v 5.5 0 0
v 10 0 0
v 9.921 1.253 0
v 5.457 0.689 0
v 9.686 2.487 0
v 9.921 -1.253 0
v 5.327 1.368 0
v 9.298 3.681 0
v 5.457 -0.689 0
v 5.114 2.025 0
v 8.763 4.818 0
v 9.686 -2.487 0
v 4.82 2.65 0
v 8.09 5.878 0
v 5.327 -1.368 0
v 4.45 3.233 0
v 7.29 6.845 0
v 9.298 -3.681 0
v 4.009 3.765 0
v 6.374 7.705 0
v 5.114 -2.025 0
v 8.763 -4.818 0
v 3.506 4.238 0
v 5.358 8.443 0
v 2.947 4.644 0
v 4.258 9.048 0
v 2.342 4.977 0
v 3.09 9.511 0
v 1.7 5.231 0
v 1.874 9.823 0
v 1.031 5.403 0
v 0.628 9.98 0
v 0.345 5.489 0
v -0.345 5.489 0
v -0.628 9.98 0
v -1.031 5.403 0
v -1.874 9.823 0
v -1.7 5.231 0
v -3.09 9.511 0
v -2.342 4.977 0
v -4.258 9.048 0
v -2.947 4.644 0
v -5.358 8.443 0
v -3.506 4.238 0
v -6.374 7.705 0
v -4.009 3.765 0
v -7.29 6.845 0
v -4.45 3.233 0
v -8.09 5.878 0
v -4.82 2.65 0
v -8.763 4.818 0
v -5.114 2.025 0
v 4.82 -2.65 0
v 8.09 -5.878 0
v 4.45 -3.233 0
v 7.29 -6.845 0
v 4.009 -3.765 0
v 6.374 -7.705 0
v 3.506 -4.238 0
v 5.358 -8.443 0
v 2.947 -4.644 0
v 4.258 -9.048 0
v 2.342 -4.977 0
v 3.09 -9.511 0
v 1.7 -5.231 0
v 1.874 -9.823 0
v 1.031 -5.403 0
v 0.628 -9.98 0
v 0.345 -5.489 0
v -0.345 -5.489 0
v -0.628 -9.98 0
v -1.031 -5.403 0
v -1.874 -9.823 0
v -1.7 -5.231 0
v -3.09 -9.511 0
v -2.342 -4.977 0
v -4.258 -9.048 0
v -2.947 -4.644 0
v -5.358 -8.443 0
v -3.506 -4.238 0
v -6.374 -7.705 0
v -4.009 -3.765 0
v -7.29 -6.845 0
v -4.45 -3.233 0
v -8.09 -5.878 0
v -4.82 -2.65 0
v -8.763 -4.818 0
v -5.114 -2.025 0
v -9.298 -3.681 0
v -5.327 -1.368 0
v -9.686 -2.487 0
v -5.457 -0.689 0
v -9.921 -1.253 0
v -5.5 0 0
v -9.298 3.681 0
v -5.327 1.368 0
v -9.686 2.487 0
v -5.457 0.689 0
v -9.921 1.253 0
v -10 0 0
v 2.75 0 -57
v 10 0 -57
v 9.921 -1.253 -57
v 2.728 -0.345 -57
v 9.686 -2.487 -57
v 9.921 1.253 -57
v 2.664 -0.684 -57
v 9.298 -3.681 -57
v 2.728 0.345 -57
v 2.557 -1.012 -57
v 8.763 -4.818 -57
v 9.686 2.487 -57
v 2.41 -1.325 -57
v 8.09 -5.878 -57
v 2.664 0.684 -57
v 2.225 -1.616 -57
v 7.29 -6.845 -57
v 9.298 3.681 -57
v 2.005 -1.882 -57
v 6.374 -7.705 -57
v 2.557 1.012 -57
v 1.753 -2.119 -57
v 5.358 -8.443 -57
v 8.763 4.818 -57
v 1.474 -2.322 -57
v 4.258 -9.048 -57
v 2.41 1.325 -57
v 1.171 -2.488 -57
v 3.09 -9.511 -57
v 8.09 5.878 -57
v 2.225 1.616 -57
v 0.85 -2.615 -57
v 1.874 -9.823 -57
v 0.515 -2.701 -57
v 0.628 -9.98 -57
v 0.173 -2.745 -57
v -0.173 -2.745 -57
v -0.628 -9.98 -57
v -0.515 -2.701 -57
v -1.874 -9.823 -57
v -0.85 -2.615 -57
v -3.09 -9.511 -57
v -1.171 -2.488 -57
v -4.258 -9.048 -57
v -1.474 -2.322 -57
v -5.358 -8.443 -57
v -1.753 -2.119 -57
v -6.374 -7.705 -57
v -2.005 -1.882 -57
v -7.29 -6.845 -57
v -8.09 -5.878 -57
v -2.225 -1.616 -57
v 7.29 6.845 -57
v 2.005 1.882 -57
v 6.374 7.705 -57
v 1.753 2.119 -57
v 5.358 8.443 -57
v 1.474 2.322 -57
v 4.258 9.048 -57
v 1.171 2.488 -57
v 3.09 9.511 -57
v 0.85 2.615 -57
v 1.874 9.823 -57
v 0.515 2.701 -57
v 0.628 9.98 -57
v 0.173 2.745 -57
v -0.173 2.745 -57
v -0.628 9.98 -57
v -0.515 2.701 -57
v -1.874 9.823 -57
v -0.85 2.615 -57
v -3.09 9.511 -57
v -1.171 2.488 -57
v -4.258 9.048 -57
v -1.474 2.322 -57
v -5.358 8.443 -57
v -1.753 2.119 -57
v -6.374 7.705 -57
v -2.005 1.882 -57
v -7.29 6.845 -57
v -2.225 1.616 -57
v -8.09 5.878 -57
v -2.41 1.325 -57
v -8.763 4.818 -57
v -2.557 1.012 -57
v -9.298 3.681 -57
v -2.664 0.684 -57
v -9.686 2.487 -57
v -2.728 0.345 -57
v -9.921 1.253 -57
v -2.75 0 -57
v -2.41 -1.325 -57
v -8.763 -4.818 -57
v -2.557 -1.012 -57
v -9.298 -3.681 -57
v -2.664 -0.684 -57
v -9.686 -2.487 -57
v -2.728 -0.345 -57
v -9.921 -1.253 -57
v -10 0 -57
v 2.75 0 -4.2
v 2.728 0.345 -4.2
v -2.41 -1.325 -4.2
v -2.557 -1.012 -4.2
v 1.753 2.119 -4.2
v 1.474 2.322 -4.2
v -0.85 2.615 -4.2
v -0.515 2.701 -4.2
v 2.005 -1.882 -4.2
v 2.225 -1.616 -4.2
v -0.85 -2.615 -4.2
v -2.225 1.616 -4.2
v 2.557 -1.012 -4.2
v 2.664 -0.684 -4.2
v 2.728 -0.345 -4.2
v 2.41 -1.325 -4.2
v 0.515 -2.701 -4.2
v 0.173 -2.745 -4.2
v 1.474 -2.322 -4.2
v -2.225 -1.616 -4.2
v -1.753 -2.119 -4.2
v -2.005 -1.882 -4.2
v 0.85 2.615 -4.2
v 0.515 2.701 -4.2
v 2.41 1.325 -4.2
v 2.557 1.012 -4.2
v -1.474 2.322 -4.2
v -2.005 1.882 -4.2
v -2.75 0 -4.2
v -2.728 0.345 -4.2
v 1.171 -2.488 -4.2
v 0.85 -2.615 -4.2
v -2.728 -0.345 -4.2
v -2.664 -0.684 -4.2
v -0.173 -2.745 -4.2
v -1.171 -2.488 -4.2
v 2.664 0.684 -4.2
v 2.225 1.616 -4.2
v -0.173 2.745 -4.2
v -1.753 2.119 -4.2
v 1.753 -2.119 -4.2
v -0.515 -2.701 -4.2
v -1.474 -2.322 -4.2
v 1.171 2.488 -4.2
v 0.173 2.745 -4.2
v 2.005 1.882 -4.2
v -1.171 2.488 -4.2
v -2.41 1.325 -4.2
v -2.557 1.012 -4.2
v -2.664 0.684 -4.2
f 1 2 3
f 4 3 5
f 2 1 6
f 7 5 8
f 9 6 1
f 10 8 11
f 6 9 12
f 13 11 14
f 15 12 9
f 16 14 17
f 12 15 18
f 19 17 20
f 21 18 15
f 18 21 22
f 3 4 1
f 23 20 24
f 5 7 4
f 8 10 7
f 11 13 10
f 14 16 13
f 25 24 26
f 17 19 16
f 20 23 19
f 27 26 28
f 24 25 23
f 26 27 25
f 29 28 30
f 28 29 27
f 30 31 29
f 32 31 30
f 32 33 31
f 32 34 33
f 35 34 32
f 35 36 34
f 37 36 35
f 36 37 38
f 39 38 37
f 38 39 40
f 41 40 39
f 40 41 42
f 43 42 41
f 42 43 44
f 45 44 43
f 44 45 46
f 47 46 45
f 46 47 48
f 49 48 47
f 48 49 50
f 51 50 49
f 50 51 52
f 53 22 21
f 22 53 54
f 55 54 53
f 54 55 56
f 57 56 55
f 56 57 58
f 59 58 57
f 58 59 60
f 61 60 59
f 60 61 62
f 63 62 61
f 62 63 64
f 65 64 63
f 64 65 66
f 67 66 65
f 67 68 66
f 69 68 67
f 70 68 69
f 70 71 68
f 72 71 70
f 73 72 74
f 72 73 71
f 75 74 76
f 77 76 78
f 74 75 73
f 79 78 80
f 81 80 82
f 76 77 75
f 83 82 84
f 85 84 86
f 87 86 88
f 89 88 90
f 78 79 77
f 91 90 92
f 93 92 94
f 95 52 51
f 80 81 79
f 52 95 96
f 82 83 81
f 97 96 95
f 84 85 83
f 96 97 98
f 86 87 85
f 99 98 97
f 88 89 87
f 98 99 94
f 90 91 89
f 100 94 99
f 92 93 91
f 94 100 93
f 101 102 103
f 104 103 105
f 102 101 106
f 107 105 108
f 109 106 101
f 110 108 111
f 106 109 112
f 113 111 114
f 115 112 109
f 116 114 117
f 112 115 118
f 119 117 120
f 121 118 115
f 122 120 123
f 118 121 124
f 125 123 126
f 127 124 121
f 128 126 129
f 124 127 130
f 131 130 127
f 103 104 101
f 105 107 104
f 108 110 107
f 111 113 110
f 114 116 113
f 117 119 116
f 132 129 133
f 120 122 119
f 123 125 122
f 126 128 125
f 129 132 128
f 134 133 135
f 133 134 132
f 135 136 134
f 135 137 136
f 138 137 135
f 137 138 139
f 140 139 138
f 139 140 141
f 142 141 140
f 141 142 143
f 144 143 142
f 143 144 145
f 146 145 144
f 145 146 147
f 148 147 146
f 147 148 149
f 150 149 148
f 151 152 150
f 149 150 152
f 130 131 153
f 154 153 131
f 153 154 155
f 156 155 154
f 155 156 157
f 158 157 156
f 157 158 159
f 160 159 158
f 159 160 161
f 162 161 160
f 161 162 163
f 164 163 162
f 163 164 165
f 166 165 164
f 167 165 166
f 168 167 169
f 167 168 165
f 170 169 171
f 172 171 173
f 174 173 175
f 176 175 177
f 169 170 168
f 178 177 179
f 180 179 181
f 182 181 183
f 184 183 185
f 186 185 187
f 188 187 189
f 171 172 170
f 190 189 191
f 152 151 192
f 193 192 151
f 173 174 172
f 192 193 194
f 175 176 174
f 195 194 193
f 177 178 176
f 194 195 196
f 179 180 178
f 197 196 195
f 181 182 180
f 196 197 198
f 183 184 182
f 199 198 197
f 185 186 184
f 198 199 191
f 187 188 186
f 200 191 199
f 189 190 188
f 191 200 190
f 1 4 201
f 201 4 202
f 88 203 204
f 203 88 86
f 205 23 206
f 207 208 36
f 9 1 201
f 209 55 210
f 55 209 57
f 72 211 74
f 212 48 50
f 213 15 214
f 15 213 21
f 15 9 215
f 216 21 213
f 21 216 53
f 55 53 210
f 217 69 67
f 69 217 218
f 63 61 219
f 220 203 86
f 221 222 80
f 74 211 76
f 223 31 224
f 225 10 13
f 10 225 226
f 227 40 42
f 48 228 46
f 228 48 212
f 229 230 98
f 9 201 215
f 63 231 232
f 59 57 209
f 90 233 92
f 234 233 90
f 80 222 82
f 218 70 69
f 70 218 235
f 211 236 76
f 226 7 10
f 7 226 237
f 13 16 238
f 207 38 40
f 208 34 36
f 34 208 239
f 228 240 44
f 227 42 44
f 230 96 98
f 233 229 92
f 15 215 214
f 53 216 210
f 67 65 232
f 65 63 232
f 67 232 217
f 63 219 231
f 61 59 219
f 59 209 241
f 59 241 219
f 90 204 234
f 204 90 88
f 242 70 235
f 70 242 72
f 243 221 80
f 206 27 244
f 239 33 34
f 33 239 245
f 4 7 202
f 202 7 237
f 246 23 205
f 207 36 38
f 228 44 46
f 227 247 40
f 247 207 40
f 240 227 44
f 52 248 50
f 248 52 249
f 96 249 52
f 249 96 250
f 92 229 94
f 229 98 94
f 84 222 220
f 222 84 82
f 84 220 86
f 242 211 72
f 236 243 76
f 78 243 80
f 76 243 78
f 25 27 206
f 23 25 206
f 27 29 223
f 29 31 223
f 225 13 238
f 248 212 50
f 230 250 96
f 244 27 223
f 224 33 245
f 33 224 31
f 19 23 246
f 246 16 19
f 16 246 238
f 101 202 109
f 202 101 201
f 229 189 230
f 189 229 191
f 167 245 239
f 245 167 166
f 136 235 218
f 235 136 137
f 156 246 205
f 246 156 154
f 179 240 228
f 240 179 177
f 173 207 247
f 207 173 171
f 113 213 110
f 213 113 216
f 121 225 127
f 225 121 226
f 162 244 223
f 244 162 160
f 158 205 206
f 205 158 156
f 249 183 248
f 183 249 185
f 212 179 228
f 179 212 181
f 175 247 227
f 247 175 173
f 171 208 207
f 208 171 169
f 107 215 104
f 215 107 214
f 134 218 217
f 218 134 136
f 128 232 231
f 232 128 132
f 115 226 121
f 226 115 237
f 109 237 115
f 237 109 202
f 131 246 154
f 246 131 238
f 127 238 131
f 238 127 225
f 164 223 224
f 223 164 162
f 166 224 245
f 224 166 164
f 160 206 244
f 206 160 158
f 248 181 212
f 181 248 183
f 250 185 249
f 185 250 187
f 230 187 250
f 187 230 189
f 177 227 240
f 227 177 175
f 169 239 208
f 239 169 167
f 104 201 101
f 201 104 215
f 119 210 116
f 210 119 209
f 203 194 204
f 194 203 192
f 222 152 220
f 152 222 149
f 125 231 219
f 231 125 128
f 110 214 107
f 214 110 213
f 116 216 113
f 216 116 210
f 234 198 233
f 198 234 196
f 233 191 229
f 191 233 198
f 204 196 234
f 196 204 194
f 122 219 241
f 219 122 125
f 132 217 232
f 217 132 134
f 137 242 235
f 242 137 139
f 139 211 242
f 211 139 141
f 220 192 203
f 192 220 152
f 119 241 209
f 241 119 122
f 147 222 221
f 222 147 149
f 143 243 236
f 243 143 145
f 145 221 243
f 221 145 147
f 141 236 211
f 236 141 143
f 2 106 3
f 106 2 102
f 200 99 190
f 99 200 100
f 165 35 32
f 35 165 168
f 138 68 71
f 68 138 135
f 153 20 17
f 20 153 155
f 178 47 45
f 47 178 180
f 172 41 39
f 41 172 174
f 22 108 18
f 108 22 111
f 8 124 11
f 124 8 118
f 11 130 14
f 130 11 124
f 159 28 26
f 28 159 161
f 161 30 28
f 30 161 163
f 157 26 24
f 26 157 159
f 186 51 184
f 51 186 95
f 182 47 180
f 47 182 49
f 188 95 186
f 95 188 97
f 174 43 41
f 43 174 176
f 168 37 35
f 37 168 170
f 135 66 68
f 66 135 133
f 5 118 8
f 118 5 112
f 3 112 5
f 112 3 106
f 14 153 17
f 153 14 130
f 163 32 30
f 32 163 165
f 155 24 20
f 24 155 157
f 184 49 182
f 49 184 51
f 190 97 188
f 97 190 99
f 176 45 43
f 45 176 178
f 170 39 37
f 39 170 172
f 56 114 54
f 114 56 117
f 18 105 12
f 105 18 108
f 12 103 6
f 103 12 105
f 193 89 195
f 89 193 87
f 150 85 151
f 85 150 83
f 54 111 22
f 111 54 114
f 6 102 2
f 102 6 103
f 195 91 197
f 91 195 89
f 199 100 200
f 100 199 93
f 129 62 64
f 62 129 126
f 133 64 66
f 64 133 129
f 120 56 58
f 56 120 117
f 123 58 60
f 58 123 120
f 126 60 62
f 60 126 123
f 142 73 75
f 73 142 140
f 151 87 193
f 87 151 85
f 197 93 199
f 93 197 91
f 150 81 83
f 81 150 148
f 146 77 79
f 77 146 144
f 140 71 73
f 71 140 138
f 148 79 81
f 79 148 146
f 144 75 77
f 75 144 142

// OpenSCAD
$fn = 50;


difference() {
	union() {
		translate(v = [0, 0, -57.0000000000]) {
			cylinder(h = 57, r = 10.0000000000);
		}
		cylinder(h = 0, r = 20.0000000000);
	}
	union() {
		translate(v = [0, 0, 0]) {
			rotate(a = [0, 0, 0]) {
				difference() {
					union() {
						#translate(v = [0, 0, -57.0000000000]) {
							cylinder(h = 57, r = 2.2500000000);
						}
						#translate(v = [0, 0, -4.2000000000]) {
							cylinder(h = 4.2000000000, r = 10.0000000000, r1 = 2.7500000000, r2 = 5.5000000000);
						}
						#translate(v = [0, 0, -57.0000000000]) {
							cylinder(h = 57, r = 2.7500000000);
						}
						#translate(v = [0, 0, -57.0000000000]) {
							cylinder(h = 57, r = 2.2500000000);
						}
					}
					union();
				}
			}
		}
	}
}
